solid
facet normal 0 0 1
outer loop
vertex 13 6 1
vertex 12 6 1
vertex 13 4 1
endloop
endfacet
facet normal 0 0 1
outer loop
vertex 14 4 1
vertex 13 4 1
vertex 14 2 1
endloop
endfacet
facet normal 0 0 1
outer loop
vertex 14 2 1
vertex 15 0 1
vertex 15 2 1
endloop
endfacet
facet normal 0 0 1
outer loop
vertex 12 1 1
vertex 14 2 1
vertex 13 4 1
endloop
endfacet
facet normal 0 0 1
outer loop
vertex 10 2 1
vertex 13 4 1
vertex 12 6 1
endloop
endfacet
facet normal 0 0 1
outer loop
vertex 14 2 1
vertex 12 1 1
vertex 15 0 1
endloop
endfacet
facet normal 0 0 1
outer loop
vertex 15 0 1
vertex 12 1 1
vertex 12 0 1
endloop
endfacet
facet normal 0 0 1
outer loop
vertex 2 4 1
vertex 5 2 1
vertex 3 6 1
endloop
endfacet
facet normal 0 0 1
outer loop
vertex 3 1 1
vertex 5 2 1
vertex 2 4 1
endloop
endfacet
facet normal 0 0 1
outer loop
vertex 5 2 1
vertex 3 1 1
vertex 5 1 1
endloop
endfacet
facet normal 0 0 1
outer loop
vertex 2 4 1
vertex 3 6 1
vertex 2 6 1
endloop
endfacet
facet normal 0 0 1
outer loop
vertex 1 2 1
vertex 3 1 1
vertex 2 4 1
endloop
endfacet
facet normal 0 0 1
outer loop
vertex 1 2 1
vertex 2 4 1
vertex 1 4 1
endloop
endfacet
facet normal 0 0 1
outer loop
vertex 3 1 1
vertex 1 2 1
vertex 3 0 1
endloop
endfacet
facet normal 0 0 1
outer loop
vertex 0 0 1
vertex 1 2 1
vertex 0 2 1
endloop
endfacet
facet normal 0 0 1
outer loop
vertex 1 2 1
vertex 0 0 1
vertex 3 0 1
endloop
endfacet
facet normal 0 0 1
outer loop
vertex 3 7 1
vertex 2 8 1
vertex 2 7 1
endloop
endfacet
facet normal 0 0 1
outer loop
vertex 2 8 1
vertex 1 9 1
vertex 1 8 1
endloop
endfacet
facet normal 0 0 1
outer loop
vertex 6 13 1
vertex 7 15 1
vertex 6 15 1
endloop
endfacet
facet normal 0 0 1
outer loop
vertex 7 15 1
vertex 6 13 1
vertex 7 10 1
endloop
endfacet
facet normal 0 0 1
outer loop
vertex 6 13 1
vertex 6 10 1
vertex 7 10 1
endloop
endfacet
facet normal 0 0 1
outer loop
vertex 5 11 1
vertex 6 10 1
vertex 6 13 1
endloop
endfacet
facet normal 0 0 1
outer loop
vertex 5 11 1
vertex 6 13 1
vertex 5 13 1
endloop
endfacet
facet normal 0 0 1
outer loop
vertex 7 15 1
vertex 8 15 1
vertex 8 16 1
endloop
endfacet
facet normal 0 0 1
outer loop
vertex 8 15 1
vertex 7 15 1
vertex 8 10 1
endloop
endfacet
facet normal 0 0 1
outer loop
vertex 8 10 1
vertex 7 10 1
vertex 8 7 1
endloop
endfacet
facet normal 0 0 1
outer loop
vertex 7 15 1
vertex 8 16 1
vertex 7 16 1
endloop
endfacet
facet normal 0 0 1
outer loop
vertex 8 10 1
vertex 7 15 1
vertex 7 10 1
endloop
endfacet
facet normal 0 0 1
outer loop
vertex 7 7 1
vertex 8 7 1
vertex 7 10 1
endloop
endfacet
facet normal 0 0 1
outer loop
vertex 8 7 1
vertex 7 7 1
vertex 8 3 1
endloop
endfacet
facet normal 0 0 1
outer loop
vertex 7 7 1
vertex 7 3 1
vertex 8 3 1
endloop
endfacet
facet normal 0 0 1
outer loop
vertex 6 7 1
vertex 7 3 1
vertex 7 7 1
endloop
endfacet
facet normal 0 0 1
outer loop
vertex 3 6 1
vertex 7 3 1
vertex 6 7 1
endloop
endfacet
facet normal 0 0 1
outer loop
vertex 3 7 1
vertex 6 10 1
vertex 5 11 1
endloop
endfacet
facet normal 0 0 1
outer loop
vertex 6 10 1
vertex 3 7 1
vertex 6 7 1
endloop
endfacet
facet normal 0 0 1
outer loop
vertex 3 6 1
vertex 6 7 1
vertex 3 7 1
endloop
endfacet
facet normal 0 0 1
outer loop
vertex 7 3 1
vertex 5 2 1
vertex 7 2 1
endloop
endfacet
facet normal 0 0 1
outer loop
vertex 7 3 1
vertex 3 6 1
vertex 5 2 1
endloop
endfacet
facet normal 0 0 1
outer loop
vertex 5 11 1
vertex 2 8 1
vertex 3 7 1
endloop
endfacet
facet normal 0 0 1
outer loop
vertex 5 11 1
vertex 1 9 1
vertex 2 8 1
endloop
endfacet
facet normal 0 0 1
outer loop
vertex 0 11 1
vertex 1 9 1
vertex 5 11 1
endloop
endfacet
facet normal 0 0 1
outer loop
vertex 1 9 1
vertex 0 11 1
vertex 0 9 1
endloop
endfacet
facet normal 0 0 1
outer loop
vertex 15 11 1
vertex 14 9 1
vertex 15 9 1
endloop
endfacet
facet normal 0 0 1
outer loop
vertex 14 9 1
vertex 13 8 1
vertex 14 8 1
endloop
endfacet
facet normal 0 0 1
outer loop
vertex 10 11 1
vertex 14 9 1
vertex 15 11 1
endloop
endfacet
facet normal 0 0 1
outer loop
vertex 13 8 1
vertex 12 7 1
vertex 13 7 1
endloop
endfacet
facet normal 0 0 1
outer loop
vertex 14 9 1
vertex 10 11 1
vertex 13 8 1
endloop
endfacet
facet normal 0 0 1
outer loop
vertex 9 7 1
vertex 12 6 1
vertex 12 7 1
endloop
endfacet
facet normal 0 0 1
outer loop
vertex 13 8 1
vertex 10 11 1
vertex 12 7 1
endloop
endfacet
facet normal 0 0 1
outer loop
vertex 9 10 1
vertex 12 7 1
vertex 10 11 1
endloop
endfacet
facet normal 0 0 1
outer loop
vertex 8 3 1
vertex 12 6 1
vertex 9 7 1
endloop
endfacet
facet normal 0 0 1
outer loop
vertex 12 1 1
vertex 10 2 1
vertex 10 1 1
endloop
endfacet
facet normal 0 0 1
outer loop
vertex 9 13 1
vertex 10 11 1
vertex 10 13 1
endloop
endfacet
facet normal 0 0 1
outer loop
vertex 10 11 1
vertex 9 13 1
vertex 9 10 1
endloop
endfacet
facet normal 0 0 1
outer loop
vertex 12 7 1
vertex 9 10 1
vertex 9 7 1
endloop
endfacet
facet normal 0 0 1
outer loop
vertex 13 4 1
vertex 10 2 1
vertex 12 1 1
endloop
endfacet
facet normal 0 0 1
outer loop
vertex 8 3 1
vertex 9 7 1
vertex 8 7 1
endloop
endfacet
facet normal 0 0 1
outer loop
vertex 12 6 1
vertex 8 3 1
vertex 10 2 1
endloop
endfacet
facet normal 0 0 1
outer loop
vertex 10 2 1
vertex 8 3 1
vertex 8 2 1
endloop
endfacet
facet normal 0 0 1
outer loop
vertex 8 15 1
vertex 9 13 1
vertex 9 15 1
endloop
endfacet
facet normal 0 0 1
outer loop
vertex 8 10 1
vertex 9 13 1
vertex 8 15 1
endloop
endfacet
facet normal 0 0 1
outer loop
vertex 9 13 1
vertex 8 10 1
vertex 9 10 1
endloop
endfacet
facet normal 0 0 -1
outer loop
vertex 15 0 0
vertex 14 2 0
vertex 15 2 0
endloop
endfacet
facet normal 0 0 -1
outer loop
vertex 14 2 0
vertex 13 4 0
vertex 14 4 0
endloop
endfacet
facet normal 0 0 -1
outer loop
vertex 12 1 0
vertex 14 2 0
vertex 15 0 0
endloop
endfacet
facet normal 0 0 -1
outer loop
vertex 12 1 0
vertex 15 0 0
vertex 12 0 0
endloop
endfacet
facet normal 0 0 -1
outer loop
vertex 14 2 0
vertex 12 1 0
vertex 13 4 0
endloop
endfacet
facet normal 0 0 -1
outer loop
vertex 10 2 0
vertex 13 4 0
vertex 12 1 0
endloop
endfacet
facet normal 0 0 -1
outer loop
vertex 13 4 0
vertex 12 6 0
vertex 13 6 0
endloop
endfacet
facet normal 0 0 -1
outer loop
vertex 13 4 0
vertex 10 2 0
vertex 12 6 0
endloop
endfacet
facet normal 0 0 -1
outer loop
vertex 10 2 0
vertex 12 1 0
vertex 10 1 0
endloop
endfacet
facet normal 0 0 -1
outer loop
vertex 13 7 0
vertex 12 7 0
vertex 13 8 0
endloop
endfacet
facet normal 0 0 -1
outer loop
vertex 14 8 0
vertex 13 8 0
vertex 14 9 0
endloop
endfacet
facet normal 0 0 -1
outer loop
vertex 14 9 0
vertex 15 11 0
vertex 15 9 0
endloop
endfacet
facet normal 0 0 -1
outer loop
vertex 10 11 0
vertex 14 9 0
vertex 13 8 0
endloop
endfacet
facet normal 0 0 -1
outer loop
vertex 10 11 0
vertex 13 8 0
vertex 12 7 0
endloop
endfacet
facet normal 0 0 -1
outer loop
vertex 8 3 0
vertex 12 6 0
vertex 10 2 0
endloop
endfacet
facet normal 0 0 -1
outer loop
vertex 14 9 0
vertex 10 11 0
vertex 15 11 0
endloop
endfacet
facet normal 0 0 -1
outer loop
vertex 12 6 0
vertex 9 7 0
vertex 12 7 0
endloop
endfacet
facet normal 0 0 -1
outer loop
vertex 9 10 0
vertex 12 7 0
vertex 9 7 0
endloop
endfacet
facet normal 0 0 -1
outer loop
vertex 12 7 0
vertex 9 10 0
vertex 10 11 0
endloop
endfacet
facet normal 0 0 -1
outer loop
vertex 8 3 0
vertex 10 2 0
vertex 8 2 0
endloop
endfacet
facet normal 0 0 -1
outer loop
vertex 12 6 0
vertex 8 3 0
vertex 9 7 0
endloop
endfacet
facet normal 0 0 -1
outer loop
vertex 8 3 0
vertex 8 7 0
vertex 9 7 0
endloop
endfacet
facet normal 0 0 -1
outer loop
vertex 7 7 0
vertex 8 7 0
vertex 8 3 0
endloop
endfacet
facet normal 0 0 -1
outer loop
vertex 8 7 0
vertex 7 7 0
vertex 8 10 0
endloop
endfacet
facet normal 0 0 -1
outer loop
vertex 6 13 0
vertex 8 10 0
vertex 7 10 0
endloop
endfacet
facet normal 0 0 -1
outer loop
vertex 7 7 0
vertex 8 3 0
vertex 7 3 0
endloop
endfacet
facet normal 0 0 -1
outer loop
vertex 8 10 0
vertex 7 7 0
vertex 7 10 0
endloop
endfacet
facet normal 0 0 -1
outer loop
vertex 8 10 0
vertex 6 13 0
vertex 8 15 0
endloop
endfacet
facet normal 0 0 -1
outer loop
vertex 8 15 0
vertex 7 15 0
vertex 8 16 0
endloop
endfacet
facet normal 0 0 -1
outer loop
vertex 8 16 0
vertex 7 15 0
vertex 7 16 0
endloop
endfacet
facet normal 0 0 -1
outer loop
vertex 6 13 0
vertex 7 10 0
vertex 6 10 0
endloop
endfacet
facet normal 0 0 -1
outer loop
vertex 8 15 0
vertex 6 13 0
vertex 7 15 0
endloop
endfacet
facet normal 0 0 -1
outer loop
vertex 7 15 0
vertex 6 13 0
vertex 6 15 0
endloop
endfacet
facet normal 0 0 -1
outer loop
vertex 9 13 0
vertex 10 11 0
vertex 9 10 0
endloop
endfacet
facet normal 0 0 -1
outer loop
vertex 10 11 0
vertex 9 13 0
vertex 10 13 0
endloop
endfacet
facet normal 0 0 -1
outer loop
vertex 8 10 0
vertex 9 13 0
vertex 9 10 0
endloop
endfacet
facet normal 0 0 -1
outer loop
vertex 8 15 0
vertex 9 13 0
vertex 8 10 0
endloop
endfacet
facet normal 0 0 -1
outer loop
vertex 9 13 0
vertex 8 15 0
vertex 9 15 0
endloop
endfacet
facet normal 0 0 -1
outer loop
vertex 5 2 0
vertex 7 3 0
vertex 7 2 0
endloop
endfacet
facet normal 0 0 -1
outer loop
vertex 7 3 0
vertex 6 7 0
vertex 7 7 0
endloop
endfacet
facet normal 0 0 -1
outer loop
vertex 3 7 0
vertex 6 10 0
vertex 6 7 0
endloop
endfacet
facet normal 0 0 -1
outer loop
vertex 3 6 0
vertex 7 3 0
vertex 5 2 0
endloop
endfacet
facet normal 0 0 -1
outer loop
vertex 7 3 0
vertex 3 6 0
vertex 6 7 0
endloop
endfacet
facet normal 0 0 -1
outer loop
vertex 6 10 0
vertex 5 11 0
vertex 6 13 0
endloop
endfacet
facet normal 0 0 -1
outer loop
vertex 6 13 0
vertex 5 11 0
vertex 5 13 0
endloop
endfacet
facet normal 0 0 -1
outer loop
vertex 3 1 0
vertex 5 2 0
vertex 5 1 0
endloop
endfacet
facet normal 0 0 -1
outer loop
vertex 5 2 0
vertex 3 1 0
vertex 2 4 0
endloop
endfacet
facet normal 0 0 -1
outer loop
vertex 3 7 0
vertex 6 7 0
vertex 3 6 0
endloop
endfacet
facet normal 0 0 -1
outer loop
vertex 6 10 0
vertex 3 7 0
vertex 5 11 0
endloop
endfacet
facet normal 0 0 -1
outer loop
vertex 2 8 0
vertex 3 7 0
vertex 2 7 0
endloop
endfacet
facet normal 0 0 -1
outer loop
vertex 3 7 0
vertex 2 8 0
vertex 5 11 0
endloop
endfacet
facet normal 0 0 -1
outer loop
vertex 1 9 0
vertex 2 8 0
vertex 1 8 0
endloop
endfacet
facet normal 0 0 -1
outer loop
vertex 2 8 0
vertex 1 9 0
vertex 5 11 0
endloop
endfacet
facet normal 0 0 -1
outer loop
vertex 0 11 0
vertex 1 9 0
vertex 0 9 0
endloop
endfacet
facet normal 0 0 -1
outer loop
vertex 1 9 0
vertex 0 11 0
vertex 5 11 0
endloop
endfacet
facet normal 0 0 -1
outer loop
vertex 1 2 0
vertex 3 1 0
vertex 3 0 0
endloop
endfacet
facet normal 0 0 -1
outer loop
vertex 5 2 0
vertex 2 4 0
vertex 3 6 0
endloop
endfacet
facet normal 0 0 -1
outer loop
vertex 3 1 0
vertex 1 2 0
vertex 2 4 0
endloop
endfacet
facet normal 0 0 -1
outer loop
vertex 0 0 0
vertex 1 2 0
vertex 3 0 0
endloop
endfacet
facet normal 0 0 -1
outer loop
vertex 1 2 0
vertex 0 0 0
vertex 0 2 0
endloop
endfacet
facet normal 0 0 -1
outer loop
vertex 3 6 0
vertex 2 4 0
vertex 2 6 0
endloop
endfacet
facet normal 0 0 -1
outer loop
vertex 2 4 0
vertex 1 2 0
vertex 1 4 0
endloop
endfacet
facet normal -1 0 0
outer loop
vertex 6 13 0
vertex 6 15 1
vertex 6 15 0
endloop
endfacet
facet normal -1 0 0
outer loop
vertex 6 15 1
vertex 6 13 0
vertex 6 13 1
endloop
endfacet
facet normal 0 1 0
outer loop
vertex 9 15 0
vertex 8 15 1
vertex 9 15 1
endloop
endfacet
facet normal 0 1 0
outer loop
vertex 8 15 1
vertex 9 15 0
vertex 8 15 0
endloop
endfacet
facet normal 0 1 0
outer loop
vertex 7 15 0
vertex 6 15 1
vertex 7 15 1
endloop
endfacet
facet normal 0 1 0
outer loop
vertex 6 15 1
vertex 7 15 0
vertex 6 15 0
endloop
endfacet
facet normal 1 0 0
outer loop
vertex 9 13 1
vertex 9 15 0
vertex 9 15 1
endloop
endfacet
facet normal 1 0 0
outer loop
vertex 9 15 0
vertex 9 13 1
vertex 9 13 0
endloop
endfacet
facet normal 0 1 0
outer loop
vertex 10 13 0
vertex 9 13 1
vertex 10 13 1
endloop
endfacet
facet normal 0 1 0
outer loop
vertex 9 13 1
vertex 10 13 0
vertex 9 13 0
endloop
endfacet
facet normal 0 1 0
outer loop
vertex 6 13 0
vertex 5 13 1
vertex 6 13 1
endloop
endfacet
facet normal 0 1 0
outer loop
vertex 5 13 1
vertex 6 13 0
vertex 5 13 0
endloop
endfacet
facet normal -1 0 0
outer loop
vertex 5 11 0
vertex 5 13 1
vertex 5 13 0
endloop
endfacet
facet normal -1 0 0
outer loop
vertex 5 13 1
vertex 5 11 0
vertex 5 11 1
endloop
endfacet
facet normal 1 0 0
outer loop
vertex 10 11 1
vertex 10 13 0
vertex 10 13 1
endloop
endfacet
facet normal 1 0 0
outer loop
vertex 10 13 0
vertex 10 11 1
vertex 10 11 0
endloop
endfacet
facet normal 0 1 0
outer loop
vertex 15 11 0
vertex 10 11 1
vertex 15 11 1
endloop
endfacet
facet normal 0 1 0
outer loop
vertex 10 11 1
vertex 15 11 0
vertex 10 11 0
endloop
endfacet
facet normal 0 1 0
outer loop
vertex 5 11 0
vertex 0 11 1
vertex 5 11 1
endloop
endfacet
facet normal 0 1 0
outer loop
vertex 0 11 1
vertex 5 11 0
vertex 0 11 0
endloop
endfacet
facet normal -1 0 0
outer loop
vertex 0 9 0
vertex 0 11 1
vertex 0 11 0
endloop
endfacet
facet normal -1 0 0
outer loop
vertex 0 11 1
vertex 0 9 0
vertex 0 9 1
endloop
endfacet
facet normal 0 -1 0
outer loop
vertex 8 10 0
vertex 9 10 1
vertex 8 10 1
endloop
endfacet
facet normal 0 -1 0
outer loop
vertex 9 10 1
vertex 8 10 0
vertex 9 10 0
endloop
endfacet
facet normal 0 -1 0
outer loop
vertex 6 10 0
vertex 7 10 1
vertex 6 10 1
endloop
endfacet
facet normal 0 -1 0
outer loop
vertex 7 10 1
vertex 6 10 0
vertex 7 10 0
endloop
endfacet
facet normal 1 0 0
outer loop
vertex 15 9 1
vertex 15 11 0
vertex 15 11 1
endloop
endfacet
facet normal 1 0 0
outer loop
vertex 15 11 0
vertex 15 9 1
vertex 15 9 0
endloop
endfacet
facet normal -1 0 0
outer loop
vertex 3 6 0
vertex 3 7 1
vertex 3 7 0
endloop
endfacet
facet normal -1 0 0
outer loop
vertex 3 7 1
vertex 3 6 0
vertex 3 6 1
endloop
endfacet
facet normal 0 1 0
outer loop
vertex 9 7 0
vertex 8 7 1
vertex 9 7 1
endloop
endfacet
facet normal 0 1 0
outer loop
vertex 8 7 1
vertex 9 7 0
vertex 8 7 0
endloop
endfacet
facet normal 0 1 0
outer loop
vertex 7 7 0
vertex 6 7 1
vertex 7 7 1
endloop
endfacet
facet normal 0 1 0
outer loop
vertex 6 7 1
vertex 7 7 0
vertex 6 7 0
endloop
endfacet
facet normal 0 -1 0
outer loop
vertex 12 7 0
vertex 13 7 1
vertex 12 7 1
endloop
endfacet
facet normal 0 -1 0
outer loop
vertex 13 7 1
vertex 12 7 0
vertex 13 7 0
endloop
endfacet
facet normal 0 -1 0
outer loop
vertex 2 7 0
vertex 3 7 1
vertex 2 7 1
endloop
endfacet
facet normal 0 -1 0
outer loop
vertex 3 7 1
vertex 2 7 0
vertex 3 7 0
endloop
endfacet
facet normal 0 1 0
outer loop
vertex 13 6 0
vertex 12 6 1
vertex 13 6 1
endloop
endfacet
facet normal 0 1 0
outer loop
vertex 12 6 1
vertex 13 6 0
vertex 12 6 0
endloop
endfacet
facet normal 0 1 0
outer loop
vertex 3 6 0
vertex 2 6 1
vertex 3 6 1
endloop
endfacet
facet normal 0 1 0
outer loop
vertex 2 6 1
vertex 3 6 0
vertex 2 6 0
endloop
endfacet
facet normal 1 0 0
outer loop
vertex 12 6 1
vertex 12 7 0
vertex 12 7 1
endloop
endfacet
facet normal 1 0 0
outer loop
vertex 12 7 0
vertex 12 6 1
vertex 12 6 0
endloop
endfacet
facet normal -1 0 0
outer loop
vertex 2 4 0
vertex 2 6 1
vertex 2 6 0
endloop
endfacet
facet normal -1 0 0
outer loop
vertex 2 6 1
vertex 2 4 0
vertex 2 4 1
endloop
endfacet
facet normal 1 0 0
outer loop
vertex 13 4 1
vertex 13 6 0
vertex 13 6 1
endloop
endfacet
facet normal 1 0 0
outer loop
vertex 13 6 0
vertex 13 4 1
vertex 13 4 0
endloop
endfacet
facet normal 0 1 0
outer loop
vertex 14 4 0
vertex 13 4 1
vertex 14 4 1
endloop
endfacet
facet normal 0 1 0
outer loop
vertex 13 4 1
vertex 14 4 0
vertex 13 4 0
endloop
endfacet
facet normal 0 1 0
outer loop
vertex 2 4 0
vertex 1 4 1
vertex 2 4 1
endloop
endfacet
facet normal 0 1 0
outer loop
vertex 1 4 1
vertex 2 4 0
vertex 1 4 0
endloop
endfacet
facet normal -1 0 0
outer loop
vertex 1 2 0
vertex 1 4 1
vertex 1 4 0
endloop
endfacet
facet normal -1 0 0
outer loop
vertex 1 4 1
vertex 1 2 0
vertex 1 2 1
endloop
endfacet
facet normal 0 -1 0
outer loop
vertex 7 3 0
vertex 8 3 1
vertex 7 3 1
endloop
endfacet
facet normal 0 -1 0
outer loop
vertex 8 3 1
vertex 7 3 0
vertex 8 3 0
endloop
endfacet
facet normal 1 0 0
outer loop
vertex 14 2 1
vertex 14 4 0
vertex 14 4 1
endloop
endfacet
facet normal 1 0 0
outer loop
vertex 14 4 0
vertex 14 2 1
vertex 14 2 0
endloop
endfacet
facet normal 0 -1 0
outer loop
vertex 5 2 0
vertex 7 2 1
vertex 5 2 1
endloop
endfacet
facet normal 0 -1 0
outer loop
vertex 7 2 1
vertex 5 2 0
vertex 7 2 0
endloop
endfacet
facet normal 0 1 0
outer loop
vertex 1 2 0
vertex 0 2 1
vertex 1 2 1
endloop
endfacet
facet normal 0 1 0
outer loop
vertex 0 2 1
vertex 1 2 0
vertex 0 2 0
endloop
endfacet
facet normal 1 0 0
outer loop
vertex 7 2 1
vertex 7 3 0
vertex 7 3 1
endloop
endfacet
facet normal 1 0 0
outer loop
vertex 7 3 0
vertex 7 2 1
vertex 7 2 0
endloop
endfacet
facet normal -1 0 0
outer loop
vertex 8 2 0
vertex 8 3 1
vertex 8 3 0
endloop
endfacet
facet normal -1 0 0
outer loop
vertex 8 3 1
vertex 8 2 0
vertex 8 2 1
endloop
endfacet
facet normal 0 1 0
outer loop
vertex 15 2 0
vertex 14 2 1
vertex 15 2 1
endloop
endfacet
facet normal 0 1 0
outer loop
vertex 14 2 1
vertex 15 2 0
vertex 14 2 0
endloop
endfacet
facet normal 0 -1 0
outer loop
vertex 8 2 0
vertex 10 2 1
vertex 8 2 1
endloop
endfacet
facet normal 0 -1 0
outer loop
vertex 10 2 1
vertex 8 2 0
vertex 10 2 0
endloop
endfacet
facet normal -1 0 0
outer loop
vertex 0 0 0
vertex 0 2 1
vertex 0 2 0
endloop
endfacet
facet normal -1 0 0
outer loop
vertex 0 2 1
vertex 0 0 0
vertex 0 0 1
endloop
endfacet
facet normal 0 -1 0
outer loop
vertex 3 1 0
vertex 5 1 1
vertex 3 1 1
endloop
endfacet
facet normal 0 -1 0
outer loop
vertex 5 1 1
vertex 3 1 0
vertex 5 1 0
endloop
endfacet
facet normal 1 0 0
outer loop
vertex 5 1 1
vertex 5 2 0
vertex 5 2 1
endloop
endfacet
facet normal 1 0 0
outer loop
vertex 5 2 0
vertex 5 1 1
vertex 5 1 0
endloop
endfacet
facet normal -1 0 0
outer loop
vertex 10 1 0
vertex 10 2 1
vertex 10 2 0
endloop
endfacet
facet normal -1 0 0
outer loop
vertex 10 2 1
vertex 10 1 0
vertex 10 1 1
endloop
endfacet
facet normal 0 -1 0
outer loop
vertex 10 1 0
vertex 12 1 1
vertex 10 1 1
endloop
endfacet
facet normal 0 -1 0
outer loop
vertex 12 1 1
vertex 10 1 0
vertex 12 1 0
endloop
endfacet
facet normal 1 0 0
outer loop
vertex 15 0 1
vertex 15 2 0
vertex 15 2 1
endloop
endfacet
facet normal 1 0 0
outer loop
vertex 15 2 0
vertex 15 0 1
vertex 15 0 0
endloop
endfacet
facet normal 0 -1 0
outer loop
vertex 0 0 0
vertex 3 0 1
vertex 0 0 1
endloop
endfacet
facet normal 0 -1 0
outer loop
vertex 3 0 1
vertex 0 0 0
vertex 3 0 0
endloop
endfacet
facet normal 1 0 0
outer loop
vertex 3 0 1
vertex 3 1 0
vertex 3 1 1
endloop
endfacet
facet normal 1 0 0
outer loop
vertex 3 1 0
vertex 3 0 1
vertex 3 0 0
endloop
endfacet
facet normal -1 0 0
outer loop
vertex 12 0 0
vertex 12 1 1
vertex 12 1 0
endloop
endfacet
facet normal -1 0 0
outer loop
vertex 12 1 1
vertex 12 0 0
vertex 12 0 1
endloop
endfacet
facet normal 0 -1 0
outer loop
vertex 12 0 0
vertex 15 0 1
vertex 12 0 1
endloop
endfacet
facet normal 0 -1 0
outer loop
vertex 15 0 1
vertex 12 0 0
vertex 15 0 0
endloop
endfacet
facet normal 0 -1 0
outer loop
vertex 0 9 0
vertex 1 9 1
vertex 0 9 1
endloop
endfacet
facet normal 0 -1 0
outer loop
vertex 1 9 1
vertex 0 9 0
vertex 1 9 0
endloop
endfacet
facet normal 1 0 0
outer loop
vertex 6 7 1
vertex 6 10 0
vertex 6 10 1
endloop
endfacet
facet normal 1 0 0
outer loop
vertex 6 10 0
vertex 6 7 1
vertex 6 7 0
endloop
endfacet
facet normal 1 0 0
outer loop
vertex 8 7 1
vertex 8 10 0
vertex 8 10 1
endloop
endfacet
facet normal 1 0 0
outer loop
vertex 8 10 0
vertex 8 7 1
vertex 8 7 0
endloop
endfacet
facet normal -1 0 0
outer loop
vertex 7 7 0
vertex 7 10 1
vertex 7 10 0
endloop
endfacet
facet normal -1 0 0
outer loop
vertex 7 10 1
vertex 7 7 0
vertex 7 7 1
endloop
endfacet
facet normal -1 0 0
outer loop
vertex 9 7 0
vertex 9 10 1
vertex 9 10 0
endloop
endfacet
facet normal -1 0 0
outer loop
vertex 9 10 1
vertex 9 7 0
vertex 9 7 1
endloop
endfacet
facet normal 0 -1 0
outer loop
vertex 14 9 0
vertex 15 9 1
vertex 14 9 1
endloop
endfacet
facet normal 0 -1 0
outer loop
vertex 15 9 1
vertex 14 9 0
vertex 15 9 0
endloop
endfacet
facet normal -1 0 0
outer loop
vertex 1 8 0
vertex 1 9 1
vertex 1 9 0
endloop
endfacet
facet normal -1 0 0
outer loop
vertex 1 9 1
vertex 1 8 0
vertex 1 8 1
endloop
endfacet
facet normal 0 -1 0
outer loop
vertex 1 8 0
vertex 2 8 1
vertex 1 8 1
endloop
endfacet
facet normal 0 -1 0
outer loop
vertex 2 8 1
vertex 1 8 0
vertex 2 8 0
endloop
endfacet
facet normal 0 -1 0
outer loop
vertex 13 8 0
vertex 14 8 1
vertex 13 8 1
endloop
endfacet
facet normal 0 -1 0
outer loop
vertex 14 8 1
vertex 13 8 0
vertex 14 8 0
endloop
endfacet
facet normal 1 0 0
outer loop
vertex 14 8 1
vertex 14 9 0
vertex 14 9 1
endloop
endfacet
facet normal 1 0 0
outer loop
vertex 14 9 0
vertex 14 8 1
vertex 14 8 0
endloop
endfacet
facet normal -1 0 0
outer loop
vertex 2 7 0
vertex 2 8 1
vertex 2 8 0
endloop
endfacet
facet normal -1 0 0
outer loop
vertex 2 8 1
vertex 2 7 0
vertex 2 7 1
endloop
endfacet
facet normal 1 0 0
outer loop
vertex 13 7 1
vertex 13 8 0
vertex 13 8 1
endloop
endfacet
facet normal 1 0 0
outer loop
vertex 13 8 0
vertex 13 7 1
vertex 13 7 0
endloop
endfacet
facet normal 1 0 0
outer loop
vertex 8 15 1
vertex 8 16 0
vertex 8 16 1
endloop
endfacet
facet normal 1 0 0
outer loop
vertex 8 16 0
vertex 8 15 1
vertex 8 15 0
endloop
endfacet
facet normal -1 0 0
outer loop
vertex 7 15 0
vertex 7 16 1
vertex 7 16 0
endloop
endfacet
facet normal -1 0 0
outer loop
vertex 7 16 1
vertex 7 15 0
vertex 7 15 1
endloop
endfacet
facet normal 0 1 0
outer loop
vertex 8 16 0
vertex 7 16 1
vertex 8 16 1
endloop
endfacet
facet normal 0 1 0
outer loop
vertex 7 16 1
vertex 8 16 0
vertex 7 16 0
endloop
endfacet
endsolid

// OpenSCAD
/*
 * 3D Pixel Art - Starman 2
 * Copyright (c) 2019 Anar Software LLC. < http://anars.com >
 *
 * This program is free software: you can redistribute it and/or modify it under
 * the terms of the GNU General Public License as published by the Free Software
 * Foundation, either version 3 of the License, or (at your option) any later
 * version.
 *
 * This program is distributed in the hope that it will be useful, but WITHOUT
 * ANY WARRANTY; without even the implied warranty of MERCHANTABILITY or FITNESS
 * FOR A PARTICULAR PURPOSE. See the GNU General Public License for more details.
 *
 * You should have received a copy of the GNU General Public License along with
 * this program. If not, see < http://www.gnu.org/licenses/ >
 *
 */

/* [Global] */

/* [Pixel Settings] */

// Pixel Length (X)
pixel_length = 1;

// Pixel Width (Y)
pixel_width = 1;

// Pixel Height (Z)
pixel_height = 1;

/* [Hidden] */

data=[[
     "       X",
     "      XXX",
     "      XXX",
     "     XXXXX",
     "     XXXXX",
     "XXXXXXXXXXXXXXX",
     "XXXXXX X XXXXXX",
     " XXXXX X XXXXX",
     "  XXXX X XXXX",
     "   XXXXXXXXX",
     "  XXXXXXXXXXX",
     "  XXXXXXXXXXX",
     " XXXXXXXXXXXXX",
     " XXXXXX XXXXXX",
     "XXXXX     XXXXX",
     "XXX         XXX"]];

for (z = [0 : len(data) - 1])
    for (y = [0 : len(data[z]) - 1])
        if (len(data[z][y]) > 0)
            for (x = [0 : len(data[z][y]) - 1])
                if (data[z][y][x] == "X")
                    translate([x * pixel_length, (len(data[z]) - 1 - y) * pixel_width, z * pixel_height])
                        cube([pixel_length, pixel_width, pixel_height]);
